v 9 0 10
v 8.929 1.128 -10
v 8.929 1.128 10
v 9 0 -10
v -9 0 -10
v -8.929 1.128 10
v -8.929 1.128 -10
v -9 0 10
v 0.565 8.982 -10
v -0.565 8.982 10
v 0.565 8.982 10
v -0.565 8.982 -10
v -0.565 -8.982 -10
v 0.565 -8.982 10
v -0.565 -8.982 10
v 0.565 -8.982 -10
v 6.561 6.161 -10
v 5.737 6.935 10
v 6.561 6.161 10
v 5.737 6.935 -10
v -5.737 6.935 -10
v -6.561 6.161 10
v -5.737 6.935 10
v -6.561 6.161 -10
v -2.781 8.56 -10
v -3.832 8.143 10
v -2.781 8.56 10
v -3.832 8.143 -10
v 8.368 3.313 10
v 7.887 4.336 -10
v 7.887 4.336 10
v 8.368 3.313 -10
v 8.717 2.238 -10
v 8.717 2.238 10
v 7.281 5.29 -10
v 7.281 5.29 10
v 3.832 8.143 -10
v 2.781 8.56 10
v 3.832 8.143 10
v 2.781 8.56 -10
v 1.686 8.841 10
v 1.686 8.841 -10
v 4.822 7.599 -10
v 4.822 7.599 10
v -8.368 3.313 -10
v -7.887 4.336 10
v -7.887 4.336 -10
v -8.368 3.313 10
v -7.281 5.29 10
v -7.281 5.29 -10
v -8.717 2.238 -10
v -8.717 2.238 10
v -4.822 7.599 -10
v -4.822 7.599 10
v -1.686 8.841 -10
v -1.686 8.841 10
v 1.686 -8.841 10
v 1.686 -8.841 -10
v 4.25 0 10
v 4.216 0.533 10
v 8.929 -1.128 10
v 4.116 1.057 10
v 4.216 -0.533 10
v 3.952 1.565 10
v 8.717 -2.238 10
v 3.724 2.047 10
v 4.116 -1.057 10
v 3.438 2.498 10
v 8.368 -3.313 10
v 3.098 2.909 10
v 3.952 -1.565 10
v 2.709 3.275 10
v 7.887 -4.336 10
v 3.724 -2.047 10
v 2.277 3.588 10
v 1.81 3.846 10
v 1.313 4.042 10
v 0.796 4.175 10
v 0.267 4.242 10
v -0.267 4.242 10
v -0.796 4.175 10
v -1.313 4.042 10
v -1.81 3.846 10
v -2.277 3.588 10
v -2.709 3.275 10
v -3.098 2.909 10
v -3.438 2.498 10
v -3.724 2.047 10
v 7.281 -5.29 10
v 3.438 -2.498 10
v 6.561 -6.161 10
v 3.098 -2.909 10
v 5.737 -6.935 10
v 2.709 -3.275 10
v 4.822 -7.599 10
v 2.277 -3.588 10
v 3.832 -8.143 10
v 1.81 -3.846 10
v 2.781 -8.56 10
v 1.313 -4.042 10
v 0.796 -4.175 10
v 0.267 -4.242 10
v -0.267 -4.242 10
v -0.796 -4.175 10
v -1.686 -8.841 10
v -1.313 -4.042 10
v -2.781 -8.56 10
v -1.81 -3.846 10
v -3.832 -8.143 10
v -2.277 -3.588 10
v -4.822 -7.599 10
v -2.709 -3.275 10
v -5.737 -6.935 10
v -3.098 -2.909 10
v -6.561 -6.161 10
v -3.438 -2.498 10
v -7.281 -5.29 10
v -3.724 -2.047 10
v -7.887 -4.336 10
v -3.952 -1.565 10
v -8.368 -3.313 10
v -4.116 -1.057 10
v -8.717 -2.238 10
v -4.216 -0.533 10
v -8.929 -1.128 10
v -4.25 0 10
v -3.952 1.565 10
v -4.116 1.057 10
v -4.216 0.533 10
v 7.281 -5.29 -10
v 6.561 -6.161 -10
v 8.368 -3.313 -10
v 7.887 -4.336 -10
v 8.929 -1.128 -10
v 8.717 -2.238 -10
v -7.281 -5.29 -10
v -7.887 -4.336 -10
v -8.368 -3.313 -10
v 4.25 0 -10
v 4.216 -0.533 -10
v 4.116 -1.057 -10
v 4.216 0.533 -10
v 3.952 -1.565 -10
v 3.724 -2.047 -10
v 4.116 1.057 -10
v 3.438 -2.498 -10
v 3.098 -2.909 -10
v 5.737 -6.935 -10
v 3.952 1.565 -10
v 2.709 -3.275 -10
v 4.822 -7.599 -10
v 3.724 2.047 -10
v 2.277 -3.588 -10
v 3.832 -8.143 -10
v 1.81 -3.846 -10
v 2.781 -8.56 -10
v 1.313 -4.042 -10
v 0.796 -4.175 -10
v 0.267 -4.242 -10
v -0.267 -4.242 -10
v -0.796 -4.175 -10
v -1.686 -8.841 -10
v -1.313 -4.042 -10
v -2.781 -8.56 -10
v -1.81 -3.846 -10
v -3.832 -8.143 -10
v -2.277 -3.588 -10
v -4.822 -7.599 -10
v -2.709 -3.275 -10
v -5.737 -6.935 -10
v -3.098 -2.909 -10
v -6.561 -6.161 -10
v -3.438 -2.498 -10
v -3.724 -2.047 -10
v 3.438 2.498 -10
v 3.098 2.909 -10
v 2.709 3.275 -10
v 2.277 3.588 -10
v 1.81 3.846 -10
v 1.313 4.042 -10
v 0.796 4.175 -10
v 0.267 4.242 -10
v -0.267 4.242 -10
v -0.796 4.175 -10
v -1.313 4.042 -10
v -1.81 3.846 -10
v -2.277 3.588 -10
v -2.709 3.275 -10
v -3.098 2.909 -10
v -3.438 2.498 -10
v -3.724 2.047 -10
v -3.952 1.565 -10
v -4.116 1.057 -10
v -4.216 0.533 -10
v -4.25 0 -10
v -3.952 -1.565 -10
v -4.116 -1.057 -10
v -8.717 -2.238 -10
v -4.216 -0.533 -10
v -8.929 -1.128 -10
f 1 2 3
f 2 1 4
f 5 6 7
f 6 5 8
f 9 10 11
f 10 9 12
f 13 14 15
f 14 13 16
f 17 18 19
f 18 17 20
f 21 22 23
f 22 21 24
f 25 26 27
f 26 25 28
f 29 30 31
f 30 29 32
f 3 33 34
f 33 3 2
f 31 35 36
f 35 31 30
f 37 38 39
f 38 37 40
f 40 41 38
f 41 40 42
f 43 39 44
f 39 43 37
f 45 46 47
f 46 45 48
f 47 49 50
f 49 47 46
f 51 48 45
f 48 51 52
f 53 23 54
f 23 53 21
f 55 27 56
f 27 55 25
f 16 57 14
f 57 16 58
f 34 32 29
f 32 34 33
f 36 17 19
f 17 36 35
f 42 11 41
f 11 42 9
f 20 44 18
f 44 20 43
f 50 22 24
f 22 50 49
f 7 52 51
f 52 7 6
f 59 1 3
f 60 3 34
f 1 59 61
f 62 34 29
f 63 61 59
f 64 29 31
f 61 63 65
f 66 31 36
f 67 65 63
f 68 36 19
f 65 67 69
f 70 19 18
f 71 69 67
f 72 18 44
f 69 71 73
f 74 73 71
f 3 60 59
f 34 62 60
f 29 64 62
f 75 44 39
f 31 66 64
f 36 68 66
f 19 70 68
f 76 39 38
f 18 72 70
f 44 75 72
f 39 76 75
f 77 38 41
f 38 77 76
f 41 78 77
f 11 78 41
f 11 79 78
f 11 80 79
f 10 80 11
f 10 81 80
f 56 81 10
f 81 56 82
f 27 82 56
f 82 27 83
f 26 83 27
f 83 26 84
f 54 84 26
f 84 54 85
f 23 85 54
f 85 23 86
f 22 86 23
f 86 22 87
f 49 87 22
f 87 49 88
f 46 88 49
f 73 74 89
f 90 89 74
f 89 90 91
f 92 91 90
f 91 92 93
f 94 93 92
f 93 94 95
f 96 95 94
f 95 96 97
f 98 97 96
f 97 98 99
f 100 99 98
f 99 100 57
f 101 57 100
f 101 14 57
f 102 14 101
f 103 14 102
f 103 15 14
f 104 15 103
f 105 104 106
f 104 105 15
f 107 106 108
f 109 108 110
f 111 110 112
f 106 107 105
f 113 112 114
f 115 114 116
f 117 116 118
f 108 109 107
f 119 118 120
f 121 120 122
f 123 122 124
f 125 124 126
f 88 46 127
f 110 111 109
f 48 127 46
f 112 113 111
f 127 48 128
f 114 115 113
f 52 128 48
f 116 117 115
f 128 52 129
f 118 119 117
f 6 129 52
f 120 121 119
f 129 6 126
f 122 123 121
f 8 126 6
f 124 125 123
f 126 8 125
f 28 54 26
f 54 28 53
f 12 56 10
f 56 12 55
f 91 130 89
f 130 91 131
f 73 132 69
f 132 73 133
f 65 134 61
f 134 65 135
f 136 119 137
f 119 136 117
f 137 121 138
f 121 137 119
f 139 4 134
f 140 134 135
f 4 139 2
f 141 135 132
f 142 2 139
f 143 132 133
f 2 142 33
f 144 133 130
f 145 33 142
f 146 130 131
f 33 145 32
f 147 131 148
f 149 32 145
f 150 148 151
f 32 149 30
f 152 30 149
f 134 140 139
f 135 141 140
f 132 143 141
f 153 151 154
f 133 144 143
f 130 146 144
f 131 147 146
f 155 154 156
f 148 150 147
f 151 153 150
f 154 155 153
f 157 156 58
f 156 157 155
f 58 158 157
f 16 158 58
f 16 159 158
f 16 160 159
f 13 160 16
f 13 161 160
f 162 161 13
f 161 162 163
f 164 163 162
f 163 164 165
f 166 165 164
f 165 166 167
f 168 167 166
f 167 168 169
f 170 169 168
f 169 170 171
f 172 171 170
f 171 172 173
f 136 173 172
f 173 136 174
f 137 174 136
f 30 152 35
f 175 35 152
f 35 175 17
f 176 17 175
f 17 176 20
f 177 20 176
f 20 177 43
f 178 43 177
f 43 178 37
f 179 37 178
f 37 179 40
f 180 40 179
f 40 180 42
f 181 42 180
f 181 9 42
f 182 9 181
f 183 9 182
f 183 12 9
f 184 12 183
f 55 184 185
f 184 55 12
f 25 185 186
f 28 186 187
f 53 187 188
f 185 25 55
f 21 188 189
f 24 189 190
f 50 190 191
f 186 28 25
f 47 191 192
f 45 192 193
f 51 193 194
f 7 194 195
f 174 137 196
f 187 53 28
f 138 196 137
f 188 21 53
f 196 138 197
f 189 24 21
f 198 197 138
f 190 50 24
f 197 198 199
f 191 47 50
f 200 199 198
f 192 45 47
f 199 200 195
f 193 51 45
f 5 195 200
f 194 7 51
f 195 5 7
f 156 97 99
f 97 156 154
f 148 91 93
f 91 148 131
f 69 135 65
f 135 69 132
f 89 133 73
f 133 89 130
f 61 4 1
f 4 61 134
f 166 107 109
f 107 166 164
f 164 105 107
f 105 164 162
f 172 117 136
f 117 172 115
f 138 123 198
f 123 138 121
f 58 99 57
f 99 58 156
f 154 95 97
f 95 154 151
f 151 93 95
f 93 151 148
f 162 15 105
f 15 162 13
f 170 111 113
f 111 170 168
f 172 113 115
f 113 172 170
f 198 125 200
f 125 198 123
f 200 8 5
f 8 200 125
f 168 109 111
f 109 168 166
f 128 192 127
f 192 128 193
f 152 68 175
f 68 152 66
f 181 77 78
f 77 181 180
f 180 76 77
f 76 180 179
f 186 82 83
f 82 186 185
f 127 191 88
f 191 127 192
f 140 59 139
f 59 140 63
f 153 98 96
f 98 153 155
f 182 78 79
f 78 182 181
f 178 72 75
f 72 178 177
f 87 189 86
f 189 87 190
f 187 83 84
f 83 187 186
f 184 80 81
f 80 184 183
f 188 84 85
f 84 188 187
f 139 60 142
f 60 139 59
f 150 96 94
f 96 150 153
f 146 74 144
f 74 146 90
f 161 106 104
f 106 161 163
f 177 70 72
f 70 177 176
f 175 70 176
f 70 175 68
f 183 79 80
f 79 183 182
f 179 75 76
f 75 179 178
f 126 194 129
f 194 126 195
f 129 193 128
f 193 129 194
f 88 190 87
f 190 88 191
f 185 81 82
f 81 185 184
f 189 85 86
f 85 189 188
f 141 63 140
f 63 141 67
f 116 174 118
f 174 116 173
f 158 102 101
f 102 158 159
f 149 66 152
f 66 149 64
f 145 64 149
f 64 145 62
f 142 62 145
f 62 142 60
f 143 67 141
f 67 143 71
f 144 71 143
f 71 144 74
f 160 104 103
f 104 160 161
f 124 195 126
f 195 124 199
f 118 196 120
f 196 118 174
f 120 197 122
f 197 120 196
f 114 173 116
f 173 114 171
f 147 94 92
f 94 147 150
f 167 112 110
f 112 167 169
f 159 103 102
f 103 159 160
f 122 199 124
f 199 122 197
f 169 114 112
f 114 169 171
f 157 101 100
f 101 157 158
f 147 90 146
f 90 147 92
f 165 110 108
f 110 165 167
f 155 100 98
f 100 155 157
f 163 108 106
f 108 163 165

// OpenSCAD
$fn = 50;


difference() {
	union() {
		translate(v = [0, 0, -10.0000000000]) {
			cylinder(h = 20, r = 9.0000000000);
		}
	}
	union() {
		translate(v = [0, 0, -100.0000000000]) {
			cylinder(h = 200, r = 4.2500000000);
		}
	}
}
